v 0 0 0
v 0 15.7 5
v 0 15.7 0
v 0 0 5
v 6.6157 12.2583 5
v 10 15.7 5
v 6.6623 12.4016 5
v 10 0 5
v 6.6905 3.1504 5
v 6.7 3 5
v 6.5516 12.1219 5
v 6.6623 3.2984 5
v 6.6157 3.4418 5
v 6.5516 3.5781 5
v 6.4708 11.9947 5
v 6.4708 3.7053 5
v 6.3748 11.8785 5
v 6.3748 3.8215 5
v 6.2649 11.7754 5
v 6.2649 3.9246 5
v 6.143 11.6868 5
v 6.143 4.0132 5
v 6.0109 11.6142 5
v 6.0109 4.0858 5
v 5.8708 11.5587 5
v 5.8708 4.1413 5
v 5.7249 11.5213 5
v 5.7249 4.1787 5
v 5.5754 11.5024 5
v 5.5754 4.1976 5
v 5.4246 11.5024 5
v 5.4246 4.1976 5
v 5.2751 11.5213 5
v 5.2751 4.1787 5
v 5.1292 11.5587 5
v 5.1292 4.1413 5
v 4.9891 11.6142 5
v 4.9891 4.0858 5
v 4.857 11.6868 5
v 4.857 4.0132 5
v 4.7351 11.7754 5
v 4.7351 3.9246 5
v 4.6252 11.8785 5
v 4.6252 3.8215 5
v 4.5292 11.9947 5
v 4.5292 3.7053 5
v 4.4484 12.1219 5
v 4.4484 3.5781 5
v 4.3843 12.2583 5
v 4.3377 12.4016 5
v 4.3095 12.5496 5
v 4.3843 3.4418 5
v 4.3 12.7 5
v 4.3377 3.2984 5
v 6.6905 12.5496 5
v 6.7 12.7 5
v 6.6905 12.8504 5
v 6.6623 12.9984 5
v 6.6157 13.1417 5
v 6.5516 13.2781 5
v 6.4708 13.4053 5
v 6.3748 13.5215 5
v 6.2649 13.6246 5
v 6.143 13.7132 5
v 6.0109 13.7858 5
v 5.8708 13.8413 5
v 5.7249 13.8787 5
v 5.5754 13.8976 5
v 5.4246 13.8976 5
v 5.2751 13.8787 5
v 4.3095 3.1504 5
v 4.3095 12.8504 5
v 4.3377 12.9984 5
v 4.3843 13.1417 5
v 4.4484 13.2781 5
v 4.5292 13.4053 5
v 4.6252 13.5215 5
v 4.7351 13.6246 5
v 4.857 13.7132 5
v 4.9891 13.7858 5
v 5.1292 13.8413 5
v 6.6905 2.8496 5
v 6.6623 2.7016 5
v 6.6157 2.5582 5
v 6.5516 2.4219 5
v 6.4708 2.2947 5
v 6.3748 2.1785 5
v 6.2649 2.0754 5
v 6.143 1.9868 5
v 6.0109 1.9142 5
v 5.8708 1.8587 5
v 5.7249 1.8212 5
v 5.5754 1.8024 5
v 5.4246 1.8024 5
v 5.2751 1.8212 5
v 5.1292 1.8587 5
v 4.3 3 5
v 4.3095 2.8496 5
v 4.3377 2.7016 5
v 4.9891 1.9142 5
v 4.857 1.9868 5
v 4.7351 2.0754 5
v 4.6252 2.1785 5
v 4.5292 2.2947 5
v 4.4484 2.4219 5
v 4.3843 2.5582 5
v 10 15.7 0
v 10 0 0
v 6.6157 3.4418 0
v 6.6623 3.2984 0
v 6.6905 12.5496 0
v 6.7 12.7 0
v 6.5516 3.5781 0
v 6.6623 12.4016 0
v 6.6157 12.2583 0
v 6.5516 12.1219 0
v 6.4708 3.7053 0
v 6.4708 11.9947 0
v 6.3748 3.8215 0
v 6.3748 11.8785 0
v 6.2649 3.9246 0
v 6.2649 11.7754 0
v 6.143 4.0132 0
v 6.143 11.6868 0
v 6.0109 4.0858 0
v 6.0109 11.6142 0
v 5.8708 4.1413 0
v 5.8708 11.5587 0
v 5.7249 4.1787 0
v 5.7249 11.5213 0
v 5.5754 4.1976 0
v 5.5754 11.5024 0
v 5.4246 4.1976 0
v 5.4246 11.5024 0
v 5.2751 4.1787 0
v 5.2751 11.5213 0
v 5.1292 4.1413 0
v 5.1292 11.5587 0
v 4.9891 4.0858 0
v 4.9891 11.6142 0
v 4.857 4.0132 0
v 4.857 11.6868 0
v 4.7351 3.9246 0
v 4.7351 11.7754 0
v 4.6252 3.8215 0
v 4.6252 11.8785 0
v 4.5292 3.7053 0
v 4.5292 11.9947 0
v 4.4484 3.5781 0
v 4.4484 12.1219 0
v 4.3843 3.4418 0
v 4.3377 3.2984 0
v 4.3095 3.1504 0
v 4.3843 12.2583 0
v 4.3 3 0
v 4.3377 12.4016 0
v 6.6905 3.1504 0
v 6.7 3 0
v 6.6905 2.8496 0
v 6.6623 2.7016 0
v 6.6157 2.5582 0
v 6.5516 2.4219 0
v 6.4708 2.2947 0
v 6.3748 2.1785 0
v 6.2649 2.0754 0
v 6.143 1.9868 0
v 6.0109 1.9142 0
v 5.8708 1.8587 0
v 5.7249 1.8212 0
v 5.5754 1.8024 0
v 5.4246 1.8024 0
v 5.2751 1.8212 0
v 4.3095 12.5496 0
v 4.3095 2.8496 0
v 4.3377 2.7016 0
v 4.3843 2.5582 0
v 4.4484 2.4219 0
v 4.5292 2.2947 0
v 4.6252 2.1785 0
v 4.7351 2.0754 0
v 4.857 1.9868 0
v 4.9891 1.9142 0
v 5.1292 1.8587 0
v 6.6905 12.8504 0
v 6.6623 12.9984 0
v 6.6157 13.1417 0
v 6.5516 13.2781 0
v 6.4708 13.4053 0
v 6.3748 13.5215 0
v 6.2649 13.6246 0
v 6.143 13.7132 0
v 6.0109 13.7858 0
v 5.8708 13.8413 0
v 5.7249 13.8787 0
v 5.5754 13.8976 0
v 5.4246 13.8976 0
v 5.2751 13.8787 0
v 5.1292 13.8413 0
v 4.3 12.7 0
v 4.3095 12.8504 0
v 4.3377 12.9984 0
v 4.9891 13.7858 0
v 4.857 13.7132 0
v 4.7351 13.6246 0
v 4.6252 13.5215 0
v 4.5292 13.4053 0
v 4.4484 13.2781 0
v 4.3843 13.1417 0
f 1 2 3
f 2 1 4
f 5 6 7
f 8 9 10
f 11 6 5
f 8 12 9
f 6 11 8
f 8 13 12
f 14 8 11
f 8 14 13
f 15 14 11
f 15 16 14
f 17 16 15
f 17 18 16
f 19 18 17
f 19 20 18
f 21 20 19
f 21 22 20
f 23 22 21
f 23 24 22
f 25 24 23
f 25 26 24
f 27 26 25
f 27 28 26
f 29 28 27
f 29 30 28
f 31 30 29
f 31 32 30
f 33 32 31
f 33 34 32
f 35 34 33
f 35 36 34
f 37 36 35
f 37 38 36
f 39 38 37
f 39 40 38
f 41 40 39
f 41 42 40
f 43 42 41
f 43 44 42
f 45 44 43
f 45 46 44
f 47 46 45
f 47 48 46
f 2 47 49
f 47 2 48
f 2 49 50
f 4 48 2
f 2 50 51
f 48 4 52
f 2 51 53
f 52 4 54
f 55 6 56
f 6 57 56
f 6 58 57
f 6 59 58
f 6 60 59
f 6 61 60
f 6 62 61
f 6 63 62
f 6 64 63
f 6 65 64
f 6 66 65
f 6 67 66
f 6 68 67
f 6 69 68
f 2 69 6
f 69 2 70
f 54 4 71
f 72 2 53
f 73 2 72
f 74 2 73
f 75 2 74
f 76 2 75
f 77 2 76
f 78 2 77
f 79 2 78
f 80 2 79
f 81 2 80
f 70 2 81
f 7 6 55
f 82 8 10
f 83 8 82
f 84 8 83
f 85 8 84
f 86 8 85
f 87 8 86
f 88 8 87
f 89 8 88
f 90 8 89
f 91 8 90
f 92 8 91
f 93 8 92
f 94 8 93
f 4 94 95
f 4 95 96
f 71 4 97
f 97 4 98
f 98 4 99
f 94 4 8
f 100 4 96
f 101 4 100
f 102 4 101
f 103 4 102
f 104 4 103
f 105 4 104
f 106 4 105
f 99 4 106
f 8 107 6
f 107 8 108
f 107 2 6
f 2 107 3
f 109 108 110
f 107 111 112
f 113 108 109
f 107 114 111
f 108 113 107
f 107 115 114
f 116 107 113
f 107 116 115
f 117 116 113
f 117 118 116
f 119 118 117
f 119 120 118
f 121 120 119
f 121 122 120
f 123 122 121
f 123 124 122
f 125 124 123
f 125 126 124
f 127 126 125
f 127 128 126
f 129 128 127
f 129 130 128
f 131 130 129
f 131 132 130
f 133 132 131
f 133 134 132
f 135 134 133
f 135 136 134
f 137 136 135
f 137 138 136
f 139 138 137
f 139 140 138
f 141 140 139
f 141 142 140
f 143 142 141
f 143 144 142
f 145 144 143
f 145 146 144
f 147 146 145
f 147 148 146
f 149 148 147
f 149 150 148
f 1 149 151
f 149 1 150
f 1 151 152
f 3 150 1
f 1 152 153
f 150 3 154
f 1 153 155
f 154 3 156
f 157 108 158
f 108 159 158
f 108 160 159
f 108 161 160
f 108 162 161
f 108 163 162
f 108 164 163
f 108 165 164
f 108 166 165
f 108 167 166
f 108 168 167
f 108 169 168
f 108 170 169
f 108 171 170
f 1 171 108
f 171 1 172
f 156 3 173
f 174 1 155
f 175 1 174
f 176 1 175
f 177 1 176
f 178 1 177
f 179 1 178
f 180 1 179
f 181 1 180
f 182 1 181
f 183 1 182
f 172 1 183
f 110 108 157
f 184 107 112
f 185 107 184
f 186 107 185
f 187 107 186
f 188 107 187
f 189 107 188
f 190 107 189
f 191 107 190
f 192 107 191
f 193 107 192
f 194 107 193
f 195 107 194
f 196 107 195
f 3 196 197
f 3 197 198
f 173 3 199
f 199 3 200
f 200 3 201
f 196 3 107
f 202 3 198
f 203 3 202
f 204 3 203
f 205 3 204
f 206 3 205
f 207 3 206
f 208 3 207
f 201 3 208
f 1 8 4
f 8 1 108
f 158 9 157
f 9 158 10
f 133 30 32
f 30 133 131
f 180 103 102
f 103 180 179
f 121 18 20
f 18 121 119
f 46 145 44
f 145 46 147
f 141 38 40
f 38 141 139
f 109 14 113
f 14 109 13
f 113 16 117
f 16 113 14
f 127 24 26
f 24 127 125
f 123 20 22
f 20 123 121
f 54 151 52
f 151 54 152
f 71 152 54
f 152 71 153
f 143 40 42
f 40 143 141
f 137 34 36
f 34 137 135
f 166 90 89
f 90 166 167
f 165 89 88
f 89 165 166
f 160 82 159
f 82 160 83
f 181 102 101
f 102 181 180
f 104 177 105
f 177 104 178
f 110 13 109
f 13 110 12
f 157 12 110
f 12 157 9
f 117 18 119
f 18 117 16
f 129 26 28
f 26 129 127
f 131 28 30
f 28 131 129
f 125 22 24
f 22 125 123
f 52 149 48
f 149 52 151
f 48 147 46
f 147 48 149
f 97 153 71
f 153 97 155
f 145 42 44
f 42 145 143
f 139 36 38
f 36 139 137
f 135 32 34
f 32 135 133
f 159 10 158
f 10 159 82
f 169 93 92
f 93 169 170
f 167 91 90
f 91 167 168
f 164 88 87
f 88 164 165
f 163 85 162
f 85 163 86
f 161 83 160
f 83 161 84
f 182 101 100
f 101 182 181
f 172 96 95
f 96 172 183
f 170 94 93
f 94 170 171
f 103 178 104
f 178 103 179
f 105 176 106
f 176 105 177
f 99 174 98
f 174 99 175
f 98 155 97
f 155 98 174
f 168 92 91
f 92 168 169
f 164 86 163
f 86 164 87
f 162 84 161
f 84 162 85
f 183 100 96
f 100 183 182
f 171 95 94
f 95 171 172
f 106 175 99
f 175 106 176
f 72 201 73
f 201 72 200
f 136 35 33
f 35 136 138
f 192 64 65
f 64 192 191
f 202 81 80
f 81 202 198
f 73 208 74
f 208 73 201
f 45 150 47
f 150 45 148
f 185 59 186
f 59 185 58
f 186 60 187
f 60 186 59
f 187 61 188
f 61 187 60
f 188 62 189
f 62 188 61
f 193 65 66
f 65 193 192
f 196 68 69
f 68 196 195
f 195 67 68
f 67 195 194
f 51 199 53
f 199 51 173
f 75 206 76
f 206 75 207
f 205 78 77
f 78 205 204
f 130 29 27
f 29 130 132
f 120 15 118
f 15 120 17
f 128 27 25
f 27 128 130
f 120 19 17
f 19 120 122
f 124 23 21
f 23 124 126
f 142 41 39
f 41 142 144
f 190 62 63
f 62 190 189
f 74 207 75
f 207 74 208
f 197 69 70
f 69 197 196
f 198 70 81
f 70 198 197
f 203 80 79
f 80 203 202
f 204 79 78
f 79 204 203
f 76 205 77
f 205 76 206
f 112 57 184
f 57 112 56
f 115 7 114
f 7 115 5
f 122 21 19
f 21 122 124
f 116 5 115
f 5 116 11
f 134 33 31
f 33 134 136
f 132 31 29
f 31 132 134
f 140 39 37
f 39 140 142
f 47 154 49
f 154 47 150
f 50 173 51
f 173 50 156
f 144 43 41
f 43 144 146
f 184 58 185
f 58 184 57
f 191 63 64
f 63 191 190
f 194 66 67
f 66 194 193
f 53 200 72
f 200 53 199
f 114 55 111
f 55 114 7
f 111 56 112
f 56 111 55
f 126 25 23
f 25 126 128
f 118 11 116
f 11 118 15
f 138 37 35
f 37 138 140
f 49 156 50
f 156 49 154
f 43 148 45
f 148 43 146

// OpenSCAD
// file: ../lib/nutsnbolts/data-access.scad
// Norm Nuts and Bolts - a OpenSCAD library
// Copyright (C) 2012  Johannes Kneer

// This program is free software: you can redistribute it and/or modify
// it under the terms of the GNU General Public License as published by
// the Free Software Foundation, either version 3 of the License, or
// (at your option) any later version.

// This program is distributed in the hope that it will be useful,
// but WITHOUT ANY WARRANTY; without even the implied warranty of
// MERCHANTABILITY or FITNESS FOR A PARTICULAR PURPOSE.  See the
// GNU General Public License for more details.

// You should have received a copy of the GNU General Public License
// along with this program.  If not, see <http://www.gnu.org/licenses/>.


// DATABASE ACCESS FUNCTIONS AND CONSTANTS



// == CONSTANTS ==

// screw table access keys
_NB_S_DESC            = 0;
_NB_S_FAMKEY			    = 1;
_NB_S_LENGTH          = 2;
_NB_S_NOTHREAD_LENGTH = 3;

_NB_F_DESC			      = 0;
_NB_F_OUTER_DIA       = 1;
_NB_F_INNER_DIA       = 2;
_NB_F_LEAD            = 3;
_NB_F_KEY             = 4;
_NB_F_KEY_DEPTH       = 5;
_NB_F_HEAD_HEIGHT     = 6;
_NB_F_HEAD_DIA        = 7;
_NB_F_NUT_KEY         = 8;
_NB_F_NUT_HEIGHT      = 9;
_NB_F_PITCH_FINE      = 10;
_NB_F_PITCH_MEDIUM    = 11;
_NB_F_PITCH_COARSE    = 12;


// == FUNCTIONS ==

// _get_screw("descriptor")   with descriptor = M8x25
//   find the line for a general object in the data matrix

function _get_screw(n) = data_screw[search([n], data_screw)[0]];
function _get_screw_fam(n) = data_screw_fam[search([_get_screw(n)[_NB_S_FAMKEY]], data_screw_fam)[0]];

function _get_fam(n) = data_screw_fam[search([n], data_screw_fam)[0]];


// _get_XXXXX("descriptor") functions
// find a single property in the database

function _get_desc(n)        = _get_screw(n)[_NB_S_DESC];
function _get_famkey(n)         = _get_screw(n)[_NB_S_FAMKEY];
function _get_length(n)      = _get_screw(n)[_NB_S_LENGTH];
function _get_nt_length(n)   = _get_screw(n)[_NB_S_NOTHREAD_LENGTH];

function _get_outer_dia(n)   = _get_screw_fam(n)[_NB_F_OUTER_DIA];
function _get_inner_dia(n)   = _get_screw_fam(n)[_NB_F_INNER_DIA];
function _get_lead(n)        = _get_screw_fam(n)[_NB_F_LEAD];
function _get_head_height(n) = _get_screw_fam(n)[_NB_F_HEAD_HEIGHT];
function _get_head_dia(n)    = _get_screw_fam(n)[_NB_F_HEAD_DIA];
function _get_nut_key(n)     = _get_screw_fam(n)[_NB_F_NUT_KEY];
function _get_nut_height(n)  = _get_screw_fam(n)[_NB_F_NUT_HEIGHT];
function _get_fine_pitch(n)  = _get_screw_fam(n)[_NB_F_PITCH_FINE];
function _get_medium_pitch(n)  = _get_screw_fam(n)[_NB_F_PITCH_MEDIUM];
function _get_coarse_pitch(n)  = _get_screw_fam(n)[_NB_F_PITCH_COARSE];
// file: ../globals.scad
// Global variables

$fn = 50;
clearance = 0.4; // Nozzle width
// file: f688zz.scad
include <../globals.scad>;

module f688zz_mount()
{
    difference(){
        cylinder(d=24,h=12);
        cylinder(d=10,h=12);
        translate([0,0,7-clearance])cylinder(d=16+clearance/2,h=12);
        translate([0,0,10.3-clearance/2])cylinder(d1=16+clearance/2,d2=16.4+clearance/2,h=0.5);
        translate([0,0,10.8-clearance/2])cylinder(d=18+clearance/2,h=12);
    }
} 
// main file
include <f688zz.scad>
include <../lib/nutsnbolts/cyl_head_bolt.scad>;

module y_endstop_spacer()
{     
    difference(){  
        cube([10,15.7,5]);
        translate([5.5,3,15])hole_through("M2",l=20, cld=clearance);
        translate([5.5,3+9.7,15])hole_through("M2",l=20, cld=clearance);
    }
}

y_endstop_spacer();
